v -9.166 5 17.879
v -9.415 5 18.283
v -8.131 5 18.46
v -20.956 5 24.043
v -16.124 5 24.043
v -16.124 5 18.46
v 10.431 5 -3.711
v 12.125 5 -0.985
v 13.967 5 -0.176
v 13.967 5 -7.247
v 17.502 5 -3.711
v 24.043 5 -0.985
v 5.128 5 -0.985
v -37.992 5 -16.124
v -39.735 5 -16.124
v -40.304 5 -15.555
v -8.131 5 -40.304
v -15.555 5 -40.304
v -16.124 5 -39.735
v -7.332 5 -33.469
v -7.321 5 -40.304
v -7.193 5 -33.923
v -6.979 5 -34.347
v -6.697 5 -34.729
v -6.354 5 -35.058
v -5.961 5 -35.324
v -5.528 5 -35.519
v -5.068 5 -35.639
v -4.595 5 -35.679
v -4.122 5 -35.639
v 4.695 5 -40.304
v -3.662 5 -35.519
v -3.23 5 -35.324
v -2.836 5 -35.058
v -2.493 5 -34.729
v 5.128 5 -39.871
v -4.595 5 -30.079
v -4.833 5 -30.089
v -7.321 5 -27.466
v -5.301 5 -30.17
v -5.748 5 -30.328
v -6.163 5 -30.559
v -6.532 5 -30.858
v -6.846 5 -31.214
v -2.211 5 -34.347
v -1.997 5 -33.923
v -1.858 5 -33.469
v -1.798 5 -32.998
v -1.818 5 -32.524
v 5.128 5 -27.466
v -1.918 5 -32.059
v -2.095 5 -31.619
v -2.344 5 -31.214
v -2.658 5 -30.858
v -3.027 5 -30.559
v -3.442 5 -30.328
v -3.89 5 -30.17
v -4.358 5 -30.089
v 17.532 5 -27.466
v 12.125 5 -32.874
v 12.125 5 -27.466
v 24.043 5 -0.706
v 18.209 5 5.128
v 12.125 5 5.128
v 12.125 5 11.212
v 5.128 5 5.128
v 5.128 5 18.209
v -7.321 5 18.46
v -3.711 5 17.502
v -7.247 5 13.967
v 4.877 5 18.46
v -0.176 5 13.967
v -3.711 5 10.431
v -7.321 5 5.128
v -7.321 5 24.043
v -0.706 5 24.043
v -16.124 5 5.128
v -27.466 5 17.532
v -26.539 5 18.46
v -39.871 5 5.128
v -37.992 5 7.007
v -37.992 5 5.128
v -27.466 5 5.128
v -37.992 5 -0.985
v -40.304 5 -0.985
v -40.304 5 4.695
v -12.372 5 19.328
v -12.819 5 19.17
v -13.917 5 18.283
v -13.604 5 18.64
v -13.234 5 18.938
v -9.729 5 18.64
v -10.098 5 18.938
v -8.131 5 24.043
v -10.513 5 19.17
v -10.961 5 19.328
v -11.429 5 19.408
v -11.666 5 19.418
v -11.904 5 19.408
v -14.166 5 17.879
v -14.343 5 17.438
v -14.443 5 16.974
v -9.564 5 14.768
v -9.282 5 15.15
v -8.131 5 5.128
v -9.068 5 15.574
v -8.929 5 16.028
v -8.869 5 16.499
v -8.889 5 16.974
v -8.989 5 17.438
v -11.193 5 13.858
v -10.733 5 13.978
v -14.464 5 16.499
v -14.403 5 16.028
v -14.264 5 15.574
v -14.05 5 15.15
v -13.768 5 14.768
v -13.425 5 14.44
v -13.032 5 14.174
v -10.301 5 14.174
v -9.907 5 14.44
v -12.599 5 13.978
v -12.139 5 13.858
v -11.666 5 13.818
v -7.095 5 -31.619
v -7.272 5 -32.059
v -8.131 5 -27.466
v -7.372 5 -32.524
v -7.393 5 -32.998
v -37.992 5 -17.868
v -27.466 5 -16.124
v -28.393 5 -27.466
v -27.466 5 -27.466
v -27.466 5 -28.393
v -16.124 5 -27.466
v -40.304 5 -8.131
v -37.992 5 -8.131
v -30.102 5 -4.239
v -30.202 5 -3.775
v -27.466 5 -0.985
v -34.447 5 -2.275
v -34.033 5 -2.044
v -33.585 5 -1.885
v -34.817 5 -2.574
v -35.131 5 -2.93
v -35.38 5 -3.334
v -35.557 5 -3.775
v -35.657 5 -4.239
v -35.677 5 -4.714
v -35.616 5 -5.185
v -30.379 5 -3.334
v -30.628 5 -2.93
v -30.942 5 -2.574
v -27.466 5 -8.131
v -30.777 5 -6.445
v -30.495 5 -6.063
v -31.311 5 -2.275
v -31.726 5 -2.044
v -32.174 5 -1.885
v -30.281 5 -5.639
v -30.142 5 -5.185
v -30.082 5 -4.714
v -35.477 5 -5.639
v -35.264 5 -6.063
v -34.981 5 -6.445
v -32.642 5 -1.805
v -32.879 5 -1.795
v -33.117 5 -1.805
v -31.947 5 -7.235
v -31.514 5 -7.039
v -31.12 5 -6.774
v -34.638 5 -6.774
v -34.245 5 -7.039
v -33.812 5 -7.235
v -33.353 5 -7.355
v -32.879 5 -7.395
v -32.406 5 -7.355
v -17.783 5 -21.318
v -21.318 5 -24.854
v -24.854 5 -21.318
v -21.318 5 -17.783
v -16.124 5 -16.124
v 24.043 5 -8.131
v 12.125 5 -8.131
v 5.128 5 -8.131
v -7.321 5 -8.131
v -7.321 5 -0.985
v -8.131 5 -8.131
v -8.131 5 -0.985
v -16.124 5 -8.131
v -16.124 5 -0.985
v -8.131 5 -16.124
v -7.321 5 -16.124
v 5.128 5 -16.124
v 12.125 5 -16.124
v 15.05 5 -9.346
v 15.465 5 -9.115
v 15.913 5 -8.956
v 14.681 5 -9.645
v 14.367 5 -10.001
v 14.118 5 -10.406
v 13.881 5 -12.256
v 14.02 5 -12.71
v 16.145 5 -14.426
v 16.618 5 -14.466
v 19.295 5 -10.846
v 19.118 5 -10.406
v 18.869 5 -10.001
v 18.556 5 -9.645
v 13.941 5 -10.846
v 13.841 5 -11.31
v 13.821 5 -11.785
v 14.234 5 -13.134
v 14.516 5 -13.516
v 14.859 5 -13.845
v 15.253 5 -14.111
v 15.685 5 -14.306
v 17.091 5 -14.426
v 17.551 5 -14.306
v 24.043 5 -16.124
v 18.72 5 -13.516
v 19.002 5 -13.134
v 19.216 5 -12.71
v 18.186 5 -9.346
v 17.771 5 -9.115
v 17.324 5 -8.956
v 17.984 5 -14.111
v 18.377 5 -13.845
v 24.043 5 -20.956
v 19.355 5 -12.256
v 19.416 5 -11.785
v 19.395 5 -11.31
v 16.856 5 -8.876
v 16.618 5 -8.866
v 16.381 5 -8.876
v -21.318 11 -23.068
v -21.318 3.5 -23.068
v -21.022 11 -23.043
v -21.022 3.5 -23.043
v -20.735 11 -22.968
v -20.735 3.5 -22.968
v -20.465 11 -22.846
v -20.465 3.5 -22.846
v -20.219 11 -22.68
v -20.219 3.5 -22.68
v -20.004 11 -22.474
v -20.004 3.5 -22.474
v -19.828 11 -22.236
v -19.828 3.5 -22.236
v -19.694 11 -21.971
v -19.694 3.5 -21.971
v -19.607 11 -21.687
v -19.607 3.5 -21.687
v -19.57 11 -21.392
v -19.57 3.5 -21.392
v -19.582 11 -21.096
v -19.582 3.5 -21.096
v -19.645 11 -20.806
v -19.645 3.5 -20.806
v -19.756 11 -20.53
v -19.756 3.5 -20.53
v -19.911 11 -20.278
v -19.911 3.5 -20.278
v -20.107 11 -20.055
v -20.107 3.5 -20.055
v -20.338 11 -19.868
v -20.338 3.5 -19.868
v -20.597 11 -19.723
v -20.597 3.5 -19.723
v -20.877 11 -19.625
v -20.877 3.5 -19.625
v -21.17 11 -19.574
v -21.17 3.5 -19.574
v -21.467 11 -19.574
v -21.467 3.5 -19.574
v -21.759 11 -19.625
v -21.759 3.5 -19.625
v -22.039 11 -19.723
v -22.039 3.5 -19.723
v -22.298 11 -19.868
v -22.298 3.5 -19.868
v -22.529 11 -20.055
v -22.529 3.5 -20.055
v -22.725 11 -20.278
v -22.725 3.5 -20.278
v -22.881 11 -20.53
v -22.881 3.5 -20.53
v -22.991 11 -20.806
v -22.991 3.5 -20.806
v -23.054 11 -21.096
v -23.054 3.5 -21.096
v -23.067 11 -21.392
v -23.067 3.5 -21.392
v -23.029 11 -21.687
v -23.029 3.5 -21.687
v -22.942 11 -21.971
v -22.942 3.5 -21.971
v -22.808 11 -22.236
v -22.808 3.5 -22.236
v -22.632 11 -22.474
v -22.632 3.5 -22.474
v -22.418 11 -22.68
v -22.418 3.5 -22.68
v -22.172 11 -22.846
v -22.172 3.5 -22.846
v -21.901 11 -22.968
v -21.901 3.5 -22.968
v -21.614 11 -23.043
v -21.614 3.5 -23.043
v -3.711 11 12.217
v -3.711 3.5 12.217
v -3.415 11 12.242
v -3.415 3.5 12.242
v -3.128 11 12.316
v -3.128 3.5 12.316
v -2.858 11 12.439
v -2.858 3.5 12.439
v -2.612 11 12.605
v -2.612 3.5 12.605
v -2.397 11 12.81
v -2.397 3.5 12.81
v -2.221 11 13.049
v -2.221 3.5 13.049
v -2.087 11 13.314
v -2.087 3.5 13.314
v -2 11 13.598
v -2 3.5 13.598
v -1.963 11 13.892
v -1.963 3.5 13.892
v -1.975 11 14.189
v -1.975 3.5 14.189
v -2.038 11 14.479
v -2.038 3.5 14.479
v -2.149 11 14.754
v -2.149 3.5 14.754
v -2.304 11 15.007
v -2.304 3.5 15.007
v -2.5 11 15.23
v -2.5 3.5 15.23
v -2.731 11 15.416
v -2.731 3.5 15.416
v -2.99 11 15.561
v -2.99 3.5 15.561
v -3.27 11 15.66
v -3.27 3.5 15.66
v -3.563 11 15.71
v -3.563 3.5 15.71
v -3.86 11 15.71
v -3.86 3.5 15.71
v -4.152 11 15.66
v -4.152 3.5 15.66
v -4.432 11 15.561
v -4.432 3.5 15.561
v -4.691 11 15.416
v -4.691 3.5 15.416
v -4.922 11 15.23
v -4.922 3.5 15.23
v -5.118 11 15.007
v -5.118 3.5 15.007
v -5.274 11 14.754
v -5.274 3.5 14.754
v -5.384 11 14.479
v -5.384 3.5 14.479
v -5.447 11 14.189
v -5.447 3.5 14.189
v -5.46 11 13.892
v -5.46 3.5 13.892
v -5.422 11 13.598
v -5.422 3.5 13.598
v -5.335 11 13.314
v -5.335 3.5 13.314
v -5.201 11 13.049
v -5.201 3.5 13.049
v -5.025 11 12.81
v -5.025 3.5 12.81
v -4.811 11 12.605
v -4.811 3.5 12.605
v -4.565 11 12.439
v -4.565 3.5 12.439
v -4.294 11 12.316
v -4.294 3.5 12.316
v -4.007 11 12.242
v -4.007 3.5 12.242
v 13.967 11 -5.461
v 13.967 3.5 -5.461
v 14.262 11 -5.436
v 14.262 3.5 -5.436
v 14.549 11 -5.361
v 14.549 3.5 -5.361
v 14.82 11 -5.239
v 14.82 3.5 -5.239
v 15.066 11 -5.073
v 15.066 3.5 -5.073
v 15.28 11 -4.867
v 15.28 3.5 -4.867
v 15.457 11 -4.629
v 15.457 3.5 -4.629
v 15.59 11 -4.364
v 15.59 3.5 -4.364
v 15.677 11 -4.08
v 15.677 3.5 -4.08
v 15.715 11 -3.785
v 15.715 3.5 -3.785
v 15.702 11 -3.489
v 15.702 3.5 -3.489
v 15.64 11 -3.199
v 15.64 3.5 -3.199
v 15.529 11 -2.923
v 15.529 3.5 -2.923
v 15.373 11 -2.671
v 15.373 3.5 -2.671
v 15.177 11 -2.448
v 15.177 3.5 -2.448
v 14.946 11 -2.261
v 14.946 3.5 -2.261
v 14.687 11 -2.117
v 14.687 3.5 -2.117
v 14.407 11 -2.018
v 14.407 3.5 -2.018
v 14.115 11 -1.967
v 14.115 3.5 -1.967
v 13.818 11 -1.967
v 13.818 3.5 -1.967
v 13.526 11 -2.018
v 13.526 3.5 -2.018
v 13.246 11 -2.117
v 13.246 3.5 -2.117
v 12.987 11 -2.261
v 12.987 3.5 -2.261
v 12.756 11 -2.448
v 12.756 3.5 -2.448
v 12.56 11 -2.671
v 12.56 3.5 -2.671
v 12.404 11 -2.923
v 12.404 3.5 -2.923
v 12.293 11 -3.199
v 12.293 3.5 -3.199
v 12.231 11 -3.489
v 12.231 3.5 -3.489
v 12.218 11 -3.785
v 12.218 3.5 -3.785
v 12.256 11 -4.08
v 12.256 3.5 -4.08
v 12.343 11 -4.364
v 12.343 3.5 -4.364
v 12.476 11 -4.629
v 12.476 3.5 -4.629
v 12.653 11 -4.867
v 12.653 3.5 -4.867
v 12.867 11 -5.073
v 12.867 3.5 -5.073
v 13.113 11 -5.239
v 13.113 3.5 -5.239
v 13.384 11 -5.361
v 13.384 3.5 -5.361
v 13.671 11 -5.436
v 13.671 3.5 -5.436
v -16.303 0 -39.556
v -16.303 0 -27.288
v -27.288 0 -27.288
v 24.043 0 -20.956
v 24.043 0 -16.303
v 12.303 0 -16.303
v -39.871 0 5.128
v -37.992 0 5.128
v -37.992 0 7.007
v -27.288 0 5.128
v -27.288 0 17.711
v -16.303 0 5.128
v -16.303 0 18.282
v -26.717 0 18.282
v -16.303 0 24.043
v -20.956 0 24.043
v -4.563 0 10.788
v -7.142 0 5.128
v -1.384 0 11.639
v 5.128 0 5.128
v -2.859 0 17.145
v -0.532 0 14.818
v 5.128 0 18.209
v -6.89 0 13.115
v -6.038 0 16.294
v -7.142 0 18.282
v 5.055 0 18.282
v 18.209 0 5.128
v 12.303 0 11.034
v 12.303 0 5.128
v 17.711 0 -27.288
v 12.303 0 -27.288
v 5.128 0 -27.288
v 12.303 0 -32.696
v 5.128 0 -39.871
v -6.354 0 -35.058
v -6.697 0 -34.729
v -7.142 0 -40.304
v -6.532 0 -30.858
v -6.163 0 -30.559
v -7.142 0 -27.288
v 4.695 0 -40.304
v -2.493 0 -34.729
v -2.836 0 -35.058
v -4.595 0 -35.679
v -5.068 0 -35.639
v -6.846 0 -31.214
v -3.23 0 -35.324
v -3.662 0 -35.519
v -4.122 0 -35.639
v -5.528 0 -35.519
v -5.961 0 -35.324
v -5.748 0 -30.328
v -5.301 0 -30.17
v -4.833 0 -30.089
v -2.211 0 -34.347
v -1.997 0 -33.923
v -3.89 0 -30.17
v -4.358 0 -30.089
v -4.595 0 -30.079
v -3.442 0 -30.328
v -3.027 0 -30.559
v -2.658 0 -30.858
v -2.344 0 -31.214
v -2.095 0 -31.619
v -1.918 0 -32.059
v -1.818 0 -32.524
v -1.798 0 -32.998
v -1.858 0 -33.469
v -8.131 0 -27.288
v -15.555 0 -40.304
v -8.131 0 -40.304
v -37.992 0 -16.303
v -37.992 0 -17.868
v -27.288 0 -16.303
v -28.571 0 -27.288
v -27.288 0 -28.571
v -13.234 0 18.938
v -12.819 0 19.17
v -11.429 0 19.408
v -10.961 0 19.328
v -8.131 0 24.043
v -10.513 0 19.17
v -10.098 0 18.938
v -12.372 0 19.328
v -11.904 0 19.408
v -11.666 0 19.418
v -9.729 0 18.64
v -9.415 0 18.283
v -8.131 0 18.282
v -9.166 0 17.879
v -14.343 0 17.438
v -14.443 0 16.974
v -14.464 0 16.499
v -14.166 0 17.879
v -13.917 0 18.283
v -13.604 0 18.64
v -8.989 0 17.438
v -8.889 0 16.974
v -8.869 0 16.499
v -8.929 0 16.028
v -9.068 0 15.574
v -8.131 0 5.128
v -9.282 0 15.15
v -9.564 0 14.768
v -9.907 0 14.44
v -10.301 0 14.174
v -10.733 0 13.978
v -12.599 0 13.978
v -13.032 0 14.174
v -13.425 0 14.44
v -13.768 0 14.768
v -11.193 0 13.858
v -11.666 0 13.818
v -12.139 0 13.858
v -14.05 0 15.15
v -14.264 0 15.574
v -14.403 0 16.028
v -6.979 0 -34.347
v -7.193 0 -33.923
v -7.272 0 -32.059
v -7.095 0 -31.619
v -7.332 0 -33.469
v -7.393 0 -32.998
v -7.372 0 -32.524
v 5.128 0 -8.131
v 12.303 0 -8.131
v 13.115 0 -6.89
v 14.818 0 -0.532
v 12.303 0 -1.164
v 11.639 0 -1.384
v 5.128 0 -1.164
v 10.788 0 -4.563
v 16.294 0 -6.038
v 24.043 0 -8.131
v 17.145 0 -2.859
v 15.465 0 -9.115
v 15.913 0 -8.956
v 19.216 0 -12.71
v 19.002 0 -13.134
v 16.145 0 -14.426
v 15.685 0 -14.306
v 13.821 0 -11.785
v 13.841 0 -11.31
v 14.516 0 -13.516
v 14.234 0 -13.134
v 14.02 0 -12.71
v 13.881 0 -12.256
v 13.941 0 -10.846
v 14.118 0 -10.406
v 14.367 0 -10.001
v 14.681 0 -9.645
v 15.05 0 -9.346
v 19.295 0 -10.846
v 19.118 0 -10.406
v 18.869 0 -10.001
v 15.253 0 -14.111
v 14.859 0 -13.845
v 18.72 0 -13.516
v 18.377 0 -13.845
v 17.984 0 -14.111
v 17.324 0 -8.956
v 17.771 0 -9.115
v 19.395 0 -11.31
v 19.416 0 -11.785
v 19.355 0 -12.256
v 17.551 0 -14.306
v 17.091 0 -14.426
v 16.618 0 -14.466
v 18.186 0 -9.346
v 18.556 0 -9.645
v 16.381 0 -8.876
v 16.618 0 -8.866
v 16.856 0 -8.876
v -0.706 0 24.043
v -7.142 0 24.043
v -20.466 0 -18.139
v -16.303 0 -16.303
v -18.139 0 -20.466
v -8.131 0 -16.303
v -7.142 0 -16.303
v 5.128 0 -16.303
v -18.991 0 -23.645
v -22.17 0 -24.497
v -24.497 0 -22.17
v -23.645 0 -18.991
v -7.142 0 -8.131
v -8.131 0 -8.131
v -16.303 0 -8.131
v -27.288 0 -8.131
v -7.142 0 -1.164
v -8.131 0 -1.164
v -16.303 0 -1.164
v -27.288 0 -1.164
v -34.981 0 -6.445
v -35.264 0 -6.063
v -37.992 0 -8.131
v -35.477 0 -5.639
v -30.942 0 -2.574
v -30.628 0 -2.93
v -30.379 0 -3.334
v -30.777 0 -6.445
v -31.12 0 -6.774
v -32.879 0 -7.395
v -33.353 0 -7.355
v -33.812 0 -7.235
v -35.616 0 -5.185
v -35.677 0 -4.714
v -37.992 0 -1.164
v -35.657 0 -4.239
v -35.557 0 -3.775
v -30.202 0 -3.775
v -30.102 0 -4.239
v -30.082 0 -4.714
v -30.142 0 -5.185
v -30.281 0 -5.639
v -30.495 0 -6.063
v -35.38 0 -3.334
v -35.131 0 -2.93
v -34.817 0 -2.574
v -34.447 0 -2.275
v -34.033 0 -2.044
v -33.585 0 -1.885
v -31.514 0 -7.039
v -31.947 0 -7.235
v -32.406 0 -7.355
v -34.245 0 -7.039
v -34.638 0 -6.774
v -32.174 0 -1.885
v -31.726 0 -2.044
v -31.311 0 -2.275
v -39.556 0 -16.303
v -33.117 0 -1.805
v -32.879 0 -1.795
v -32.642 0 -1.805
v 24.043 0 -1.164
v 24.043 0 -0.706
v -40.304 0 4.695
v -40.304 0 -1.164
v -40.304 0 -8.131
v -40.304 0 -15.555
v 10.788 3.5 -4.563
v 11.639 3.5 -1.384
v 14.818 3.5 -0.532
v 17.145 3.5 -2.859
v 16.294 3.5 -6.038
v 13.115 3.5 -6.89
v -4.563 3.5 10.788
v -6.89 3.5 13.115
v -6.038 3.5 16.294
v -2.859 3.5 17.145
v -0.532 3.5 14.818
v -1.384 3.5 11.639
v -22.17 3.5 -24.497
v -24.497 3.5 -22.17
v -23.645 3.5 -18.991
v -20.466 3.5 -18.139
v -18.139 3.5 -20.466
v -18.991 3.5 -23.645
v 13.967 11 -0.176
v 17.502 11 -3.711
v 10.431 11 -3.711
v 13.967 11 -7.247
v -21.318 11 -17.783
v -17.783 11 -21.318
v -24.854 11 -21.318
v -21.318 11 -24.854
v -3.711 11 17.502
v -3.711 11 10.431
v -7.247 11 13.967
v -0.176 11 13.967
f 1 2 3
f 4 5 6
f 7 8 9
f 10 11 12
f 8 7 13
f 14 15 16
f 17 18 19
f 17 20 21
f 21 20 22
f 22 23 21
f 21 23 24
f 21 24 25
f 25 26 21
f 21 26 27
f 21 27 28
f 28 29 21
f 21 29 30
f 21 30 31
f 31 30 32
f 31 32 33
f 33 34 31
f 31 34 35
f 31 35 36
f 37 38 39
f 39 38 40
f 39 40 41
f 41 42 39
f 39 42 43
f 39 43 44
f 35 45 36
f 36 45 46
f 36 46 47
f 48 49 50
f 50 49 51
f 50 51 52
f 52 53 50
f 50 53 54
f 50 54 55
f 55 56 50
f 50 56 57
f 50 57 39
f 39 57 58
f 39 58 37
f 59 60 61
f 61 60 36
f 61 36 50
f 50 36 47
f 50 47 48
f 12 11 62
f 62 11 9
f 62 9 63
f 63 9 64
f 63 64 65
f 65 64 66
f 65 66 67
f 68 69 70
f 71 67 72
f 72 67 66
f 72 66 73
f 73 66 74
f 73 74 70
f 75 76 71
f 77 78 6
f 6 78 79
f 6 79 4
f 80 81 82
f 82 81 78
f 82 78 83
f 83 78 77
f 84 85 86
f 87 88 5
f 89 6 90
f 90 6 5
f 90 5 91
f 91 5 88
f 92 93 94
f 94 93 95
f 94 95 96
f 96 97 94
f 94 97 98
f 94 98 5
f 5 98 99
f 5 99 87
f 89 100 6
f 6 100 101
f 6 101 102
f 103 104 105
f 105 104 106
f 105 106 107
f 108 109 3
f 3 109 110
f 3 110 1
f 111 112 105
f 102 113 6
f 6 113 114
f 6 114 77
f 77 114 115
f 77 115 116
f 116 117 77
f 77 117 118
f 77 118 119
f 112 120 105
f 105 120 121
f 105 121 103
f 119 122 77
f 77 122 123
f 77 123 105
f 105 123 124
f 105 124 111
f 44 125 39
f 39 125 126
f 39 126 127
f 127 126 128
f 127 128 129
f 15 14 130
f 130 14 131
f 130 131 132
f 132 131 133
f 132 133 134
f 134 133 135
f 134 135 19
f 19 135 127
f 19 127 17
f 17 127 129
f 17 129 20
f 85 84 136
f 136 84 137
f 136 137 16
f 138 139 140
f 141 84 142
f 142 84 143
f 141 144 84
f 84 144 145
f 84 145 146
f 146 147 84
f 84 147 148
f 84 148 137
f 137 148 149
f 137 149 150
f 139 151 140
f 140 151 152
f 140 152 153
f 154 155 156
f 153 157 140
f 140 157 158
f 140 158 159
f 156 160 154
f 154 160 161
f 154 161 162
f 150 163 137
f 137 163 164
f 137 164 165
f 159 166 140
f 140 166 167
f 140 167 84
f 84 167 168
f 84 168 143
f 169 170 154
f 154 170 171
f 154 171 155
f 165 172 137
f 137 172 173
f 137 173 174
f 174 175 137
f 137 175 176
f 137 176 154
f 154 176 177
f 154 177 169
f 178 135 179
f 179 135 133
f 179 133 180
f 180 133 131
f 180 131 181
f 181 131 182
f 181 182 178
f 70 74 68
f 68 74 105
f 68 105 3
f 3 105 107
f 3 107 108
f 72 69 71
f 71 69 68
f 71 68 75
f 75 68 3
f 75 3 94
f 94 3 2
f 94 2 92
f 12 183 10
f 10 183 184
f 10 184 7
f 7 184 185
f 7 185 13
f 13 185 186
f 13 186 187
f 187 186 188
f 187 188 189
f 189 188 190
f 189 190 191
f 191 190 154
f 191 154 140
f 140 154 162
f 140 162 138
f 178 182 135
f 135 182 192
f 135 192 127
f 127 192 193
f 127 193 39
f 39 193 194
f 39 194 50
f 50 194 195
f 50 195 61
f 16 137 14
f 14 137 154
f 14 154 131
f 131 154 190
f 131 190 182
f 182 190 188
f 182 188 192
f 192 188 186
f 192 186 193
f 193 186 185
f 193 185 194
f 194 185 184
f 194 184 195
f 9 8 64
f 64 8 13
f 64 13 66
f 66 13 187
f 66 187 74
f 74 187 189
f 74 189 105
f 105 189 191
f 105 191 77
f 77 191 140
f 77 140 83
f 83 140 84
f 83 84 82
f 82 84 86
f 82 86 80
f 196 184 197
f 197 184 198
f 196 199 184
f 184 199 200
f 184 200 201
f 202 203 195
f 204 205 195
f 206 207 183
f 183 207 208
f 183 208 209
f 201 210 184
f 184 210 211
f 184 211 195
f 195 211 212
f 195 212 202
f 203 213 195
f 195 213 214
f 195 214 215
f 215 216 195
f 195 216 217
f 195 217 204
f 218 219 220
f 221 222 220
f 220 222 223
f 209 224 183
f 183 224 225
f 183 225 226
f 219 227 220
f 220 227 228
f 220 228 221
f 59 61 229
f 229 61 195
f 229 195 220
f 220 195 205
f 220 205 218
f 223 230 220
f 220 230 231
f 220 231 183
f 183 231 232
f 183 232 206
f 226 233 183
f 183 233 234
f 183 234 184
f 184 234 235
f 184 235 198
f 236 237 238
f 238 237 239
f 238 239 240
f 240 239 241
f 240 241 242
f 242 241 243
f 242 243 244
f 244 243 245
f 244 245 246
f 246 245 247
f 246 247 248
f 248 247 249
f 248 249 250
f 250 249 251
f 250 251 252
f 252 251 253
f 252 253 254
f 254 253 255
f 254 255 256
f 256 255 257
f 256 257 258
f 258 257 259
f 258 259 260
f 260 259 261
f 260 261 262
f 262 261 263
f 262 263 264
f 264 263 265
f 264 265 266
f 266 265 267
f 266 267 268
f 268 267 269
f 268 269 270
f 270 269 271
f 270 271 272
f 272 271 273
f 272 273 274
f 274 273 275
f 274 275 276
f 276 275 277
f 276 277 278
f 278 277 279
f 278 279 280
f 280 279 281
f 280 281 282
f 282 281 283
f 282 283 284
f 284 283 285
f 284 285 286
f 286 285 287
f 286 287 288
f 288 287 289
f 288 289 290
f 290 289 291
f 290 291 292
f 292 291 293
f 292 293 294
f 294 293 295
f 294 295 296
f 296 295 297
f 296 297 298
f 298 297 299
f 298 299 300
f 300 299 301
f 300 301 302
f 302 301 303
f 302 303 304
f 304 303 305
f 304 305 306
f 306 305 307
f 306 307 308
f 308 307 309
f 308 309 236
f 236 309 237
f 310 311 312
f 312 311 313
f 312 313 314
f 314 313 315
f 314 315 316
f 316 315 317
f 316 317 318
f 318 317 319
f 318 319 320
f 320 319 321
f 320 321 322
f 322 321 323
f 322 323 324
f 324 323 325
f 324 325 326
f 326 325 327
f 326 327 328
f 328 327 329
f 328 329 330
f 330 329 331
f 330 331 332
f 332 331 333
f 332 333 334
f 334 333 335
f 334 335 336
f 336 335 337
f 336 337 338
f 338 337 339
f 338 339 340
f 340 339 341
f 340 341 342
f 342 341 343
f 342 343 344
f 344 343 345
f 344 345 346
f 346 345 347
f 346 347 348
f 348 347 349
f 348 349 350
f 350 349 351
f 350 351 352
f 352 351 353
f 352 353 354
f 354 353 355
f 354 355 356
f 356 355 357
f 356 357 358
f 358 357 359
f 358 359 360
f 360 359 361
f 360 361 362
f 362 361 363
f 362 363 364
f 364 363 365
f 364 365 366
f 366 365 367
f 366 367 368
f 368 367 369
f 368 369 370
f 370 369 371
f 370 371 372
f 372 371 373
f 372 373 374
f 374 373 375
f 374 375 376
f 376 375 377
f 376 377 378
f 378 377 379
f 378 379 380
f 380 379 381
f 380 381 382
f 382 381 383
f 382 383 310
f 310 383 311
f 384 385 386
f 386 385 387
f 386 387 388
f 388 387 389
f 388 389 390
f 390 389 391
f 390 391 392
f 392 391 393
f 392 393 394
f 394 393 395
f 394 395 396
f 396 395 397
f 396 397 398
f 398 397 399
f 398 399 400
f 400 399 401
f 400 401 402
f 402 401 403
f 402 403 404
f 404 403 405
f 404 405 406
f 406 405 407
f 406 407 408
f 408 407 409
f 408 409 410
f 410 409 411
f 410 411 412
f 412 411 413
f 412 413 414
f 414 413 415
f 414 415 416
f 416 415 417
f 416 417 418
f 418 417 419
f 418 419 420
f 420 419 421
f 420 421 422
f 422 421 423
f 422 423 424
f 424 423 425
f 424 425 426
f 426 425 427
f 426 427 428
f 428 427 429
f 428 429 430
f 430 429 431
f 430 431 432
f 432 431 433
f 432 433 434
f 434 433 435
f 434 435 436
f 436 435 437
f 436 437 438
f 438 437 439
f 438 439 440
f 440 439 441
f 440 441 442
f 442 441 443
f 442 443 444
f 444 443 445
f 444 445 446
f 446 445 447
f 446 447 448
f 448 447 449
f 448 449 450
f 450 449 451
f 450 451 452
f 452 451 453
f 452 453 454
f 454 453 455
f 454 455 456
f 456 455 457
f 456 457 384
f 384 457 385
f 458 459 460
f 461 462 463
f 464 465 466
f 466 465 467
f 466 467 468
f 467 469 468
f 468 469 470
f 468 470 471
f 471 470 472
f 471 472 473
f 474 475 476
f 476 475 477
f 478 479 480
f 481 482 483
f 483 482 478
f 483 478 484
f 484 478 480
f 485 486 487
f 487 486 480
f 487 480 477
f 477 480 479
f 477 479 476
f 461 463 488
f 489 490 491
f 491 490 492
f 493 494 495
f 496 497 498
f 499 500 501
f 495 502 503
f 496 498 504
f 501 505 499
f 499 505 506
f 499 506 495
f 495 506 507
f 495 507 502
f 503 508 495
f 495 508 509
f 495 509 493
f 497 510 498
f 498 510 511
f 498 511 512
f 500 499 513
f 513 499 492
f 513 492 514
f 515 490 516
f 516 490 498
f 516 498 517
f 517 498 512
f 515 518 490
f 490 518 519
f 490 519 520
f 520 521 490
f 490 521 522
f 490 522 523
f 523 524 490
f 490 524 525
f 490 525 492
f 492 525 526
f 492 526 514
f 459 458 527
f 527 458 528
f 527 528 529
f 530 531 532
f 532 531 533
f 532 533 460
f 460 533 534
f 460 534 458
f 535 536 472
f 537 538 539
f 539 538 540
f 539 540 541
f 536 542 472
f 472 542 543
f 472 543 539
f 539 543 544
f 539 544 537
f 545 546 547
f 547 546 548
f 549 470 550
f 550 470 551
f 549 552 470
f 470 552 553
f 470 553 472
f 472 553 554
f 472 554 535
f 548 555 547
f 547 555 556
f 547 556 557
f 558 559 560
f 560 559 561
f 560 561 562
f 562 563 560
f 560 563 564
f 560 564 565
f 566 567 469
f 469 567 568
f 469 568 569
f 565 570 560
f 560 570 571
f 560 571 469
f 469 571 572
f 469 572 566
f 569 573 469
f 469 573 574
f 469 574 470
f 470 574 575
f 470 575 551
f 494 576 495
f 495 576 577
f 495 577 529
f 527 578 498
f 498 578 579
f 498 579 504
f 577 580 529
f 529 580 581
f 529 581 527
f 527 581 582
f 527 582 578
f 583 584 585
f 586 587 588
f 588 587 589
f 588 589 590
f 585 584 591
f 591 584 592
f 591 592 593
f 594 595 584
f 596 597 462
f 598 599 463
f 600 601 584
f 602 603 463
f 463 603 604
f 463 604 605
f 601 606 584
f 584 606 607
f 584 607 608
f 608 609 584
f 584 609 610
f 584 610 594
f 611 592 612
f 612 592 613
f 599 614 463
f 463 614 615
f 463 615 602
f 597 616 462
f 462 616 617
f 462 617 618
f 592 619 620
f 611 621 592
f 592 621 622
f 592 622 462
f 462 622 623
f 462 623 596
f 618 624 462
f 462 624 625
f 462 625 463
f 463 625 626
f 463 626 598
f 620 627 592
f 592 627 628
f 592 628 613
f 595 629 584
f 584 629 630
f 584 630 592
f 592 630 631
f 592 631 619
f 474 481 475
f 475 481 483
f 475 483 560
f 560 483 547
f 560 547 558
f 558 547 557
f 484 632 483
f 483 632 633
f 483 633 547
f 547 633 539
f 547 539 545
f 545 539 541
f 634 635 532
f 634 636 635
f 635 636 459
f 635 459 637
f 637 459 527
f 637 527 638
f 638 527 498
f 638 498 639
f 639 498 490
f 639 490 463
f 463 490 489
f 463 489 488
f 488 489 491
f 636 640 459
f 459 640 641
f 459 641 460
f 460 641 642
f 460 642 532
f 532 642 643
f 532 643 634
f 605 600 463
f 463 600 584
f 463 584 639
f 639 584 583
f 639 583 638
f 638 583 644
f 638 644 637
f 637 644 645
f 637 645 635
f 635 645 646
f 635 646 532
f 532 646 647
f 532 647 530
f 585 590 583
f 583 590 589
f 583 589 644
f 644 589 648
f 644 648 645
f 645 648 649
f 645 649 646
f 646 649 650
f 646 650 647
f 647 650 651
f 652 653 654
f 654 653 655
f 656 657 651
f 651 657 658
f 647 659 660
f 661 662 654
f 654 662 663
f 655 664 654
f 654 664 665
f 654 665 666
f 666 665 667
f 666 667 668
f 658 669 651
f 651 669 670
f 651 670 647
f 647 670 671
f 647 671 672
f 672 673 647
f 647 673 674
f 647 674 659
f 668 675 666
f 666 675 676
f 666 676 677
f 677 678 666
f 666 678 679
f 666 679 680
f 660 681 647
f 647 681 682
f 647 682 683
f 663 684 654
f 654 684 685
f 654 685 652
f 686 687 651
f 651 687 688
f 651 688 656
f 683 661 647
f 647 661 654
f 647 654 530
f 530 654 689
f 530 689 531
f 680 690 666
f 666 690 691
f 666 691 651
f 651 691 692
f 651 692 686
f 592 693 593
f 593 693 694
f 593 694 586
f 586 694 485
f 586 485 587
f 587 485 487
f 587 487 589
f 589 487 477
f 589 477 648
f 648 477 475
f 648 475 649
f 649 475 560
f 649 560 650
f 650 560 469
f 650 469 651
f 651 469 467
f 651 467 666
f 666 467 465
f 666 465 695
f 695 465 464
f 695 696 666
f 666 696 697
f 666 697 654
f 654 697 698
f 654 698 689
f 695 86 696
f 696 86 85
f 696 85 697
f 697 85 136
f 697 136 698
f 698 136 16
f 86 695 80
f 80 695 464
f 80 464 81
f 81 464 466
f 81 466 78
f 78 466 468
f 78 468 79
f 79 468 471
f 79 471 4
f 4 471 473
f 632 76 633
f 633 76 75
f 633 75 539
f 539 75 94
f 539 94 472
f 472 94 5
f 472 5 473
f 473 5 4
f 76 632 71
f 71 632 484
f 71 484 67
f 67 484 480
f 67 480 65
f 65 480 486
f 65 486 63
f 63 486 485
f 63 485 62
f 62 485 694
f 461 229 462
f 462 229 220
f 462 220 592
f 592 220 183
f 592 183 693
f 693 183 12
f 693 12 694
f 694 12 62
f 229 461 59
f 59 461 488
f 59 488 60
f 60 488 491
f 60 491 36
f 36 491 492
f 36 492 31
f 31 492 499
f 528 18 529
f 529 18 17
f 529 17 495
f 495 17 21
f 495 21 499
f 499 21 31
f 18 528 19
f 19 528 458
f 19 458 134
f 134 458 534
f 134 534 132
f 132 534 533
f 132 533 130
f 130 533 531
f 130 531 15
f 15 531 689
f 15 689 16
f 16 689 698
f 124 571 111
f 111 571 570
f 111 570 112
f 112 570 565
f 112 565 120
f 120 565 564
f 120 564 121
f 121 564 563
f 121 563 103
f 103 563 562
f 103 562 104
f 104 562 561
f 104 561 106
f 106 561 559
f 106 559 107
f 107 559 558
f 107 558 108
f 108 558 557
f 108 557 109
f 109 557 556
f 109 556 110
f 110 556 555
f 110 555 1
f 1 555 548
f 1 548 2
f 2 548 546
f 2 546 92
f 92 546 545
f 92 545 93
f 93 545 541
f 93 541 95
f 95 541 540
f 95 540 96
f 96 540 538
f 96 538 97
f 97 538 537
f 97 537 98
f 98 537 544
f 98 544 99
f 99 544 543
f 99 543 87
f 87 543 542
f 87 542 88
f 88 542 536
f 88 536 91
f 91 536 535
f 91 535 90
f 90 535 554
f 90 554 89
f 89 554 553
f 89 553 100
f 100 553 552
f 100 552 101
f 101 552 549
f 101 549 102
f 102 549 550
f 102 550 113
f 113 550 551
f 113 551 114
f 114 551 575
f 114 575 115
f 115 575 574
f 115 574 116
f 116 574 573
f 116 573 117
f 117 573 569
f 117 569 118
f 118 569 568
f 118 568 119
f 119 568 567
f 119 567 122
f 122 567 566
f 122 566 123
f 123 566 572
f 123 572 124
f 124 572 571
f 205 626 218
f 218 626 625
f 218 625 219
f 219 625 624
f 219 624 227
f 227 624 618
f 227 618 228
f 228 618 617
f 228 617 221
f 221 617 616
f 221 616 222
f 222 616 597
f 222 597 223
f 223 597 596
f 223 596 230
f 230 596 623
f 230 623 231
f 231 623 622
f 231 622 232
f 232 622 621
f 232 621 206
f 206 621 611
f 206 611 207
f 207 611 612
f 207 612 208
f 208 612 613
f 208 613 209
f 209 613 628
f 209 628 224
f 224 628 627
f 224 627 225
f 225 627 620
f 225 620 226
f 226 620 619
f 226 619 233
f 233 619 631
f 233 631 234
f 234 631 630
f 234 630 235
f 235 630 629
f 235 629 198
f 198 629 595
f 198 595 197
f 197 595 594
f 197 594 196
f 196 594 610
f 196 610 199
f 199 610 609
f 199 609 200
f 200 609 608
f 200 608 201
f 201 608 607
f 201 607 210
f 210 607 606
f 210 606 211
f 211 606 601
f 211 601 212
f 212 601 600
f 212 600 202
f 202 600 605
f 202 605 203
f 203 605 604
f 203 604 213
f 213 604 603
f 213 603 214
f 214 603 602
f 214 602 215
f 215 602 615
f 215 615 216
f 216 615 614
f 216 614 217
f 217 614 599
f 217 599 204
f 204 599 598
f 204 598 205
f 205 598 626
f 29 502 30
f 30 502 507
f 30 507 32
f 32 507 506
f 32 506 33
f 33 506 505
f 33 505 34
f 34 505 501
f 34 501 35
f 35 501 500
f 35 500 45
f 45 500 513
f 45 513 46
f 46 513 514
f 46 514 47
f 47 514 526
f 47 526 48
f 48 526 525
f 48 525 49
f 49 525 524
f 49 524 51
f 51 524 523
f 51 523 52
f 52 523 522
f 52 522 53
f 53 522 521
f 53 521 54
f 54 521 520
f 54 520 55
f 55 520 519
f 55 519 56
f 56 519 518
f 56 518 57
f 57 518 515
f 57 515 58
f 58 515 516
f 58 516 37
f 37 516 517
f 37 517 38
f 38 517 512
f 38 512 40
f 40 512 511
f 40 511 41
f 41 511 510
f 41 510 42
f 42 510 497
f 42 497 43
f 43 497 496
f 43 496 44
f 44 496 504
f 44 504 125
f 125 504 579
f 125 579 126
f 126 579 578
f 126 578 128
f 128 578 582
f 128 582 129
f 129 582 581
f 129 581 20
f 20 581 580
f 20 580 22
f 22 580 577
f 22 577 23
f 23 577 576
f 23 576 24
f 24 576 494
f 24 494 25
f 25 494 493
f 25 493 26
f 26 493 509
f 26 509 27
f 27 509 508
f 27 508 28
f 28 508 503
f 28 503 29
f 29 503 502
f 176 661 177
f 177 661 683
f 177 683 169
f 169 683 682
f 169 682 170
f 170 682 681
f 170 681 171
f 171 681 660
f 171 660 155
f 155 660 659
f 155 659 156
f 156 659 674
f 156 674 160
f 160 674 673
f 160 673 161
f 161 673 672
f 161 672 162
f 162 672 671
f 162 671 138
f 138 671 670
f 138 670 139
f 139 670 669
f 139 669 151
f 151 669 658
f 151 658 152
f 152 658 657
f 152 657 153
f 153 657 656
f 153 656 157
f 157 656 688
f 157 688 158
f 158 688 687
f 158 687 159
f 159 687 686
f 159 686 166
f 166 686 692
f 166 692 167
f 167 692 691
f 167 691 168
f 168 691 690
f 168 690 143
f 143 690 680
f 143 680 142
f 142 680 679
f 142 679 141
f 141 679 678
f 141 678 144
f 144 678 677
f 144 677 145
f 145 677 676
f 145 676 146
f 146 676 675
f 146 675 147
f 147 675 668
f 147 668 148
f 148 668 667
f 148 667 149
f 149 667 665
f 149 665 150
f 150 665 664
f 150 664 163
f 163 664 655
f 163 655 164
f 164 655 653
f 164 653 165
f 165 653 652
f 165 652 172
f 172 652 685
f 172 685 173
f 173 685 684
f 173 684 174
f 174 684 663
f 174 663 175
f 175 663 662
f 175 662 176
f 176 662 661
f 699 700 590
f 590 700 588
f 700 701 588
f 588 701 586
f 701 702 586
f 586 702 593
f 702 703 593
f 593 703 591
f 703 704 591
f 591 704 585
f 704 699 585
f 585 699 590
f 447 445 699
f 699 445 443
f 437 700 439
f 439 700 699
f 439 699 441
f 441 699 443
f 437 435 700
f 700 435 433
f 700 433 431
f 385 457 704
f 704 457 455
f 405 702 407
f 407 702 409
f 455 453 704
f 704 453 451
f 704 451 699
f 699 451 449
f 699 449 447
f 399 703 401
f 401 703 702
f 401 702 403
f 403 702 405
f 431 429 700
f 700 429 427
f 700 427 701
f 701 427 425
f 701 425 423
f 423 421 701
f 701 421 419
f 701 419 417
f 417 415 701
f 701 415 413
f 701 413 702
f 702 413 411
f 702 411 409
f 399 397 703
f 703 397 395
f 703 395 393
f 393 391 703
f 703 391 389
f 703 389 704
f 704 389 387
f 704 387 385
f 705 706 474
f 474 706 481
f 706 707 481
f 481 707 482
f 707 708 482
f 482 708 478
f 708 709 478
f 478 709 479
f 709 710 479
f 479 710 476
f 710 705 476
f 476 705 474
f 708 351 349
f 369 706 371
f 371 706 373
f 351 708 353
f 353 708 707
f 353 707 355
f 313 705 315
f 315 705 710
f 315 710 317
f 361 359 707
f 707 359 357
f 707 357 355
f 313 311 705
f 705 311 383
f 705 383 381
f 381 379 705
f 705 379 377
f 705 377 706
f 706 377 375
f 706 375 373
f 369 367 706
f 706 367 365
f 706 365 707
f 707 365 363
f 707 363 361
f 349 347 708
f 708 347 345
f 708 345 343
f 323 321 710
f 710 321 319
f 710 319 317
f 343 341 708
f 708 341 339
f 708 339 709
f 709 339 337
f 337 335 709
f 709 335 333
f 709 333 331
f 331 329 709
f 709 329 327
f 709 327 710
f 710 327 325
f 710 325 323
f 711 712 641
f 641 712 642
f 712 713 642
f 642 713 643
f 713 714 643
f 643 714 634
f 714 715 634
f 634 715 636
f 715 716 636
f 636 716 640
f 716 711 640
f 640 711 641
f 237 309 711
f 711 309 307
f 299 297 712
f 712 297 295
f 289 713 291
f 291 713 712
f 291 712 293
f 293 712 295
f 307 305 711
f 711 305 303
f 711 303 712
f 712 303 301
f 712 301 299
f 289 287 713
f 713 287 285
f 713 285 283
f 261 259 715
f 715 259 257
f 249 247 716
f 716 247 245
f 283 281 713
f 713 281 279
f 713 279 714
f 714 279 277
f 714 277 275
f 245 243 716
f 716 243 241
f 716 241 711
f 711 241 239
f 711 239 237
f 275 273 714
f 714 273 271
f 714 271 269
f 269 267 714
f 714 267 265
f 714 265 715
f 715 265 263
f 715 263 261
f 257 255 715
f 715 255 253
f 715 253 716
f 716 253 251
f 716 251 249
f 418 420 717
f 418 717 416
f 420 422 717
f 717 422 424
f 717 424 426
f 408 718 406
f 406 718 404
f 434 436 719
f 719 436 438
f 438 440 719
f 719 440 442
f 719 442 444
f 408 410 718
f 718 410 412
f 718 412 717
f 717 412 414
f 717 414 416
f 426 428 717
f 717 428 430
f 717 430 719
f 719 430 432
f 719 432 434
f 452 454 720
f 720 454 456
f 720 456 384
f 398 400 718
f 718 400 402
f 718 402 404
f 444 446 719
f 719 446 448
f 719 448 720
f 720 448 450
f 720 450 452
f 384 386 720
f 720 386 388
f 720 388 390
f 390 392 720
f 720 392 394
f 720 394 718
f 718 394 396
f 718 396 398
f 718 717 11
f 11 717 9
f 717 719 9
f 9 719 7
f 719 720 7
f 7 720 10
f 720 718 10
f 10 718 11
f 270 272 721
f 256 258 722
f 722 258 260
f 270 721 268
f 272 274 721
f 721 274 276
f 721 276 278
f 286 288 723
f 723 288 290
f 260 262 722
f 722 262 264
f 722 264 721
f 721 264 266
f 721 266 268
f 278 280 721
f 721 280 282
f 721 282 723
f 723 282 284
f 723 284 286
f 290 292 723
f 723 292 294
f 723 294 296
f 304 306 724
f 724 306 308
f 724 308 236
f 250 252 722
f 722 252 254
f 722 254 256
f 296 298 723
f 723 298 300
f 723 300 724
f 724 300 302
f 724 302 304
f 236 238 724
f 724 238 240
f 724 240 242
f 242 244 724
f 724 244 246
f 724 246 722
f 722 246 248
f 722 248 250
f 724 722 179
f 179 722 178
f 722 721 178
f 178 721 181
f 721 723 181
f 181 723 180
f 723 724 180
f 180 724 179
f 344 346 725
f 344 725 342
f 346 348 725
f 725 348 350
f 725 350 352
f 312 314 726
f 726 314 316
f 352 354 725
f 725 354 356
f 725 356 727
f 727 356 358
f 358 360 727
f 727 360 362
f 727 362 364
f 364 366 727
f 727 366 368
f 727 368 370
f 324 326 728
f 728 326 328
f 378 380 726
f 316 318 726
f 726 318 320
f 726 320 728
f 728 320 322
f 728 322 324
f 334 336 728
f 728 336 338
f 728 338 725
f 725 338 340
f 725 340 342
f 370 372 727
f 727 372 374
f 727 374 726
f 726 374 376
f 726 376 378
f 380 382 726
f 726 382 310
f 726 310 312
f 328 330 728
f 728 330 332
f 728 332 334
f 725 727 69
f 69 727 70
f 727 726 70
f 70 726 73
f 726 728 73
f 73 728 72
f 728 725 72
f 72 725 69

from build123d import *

# Parameters (mm, degrees)
SKETCH1_R               = 2.8
BOSS_EXTRUDE1_DEPTH     = 5
CUT_EXTRUDE1_DEPTH      = 16
CUT_EXTRUDE1_DEPTH_BACK = 10
SKETCH2_R               = 1.75
CUT_EXTRUDE2_DEPTH      = 3.5
BOSS_EXTRUDE2_DEPTH     = 6
SKETCH5_R               = 1.75
CUT_EXTRUDE3_DEPTH      = 58.313311378


with BuildPart() as part:
    # Sketch1 → Boss-Extrude1 (new body)
    with BuildSketch(Plane(origin=(0, 0, 0), x_dir=(1, 0, 0), z_dir=(0, 1, 0))):
        Polygon((-40.303943114, 15.555205773), (-15.555205773, 40.303943114), (4.694794227, 40.303943114), (24.042773974, 20.955963368), (24.042773974, 0.705963368), (-0.705963368, -24.042773974), (-20.955963368, -24.042773974), (-40.303943114, -4.694794227), align=None)
        with Locations(Location((-11.666118476, -16.618152771, 0), (0, 0, 270))):
            Circle(SKETCH1_R, mode=Mode.SUBTRACT)
        with Locations(Location((16.618152771, 11.666118476, 0), (0, 0, 270))):
            Circle(SKETCH1_R, mode=Mode.SUBTRACT)
        with Locations(Location((-4.595050664, 32.879321912, 0), (0, 0, 270))):
            Circle(SKETCH1_R, mode=Mode.SUBTRACT)
        with Locations(Location((-32.879321912, 4.595050664, 0), (0, 0, 270))):
            Circle(SKETCH1_R, mode=Mode.SUBTRACT)
    extrude(amount=BOSS_EXTRUDE1_DEPTH)

    # Sketch2 → Cut-Extrude1 (cut, two sides: drawn at the far end of the back side and taken through both)
    with BuildSketch(Plane(origin=(0, 5, 0), x_dir=(1, 0, 0), z_dir=(0, 1, 0)).offset(-CUT_EXTRUDE1_DEPTH_BACK)):
        with Locations(Location((13.966502342, 3.711167188, 0), (0, 0, 90))):
            Circle(SKETCH2_R)
        with Locations(Location((-3.711167188, -13.966502342, 0), (0, 0, 90))):
            Circle(SKETCH2_R)
        with Locations(Location((-21.31812604, 21.31812604, 0), (0, 0, 90))):
            Circle(SKETCH2_R)
    extrude(amount=CUT_EXTRUDE1_DEPTH + CUT_EXTRUDE1_DEPTH_BACK, mode=Mode.SUBTRACT)

    # Sketch3 → Cut-Extrude2 (cut)
    with BuildSketch(Plane.XZ):
        Polygon((-4.562913887, 10.787740387), (-1.384151932, 11.639487086), (-0.532405234, 14.81824904), (-2.859420489, 17.145264296), (-6.038182444, 16.293517597), (-6.889929142, 13.114755643), align=None)
        Polygon((10.787740387, -4.562913887), (13.114755643, -6.889929142), (16.293517597, -6.038182444), (17.145264296, -2.859420489), (14.81824904, -0.532405234), (11.639487086, -1.384151932), align=None)
        Polygon((-22.169872738, -24.496887994), (-18.991110784, -23.645141295), (-18.139364085, -20.466379341), (-20.466379341, -18.139364085), (-23.645141295, -18.991110784), (-24.496887994, -22.169872738), align=None)
    extrude(amount=-CUT_EXTRUDE2_DEPTH, mode=Mode.SUBTRACT)

    # Sketch4 → Boss-Extrude2 (add)
    with BuildSketch(Plane(origin=(0, 5, 0), x_dir=(1, 0, 0), z_dir=(0, 1, 0))):
        Polygon((-7.246701094, -13.966502342), (-3.711167188, -17.502036248), (-0.175633282, -13.966502342), (-3.711167188, -10.430968436), align=None)
        Polygon((-21.31812604, 17.782592134), (-24.853659945, 21.31812604), (-21.31812604, 24.853659945), (-17.782592134, 21.31812604), align=None)
        Polygon((10.430968436, 3.711167188), (13.966502342, 7.246701094), (17.502036248, 3.711167188), (13.966502342, 0.175633282), align=None)
    extrude(amount=BOSS_EXTRUDE2_DEPTH)

    # Sketch5 → Cut-Extrude3 (cut, through all)
    with BuildSketch(Plane.XZ.offset(-5)):
        with Locations(Location((-21.31812604, -21.31812604, 0), (0, 0, 270))):
            Circle(SKETCH5_R)
        with Locations(Location((-3.711167188, 13.966502342, 0), (0, 0, 270))):
            Circle(SKETCH5_R)
        with Locations(Location((13.966502342, -3.711167188, 0), (0, 0, 270))):
            Circle(SKETCH5_R)
    extrude(amount=-CUT_EXTRUDE3_DEPTH, mode=Mode.SUBTRACT)


solid = part.part
